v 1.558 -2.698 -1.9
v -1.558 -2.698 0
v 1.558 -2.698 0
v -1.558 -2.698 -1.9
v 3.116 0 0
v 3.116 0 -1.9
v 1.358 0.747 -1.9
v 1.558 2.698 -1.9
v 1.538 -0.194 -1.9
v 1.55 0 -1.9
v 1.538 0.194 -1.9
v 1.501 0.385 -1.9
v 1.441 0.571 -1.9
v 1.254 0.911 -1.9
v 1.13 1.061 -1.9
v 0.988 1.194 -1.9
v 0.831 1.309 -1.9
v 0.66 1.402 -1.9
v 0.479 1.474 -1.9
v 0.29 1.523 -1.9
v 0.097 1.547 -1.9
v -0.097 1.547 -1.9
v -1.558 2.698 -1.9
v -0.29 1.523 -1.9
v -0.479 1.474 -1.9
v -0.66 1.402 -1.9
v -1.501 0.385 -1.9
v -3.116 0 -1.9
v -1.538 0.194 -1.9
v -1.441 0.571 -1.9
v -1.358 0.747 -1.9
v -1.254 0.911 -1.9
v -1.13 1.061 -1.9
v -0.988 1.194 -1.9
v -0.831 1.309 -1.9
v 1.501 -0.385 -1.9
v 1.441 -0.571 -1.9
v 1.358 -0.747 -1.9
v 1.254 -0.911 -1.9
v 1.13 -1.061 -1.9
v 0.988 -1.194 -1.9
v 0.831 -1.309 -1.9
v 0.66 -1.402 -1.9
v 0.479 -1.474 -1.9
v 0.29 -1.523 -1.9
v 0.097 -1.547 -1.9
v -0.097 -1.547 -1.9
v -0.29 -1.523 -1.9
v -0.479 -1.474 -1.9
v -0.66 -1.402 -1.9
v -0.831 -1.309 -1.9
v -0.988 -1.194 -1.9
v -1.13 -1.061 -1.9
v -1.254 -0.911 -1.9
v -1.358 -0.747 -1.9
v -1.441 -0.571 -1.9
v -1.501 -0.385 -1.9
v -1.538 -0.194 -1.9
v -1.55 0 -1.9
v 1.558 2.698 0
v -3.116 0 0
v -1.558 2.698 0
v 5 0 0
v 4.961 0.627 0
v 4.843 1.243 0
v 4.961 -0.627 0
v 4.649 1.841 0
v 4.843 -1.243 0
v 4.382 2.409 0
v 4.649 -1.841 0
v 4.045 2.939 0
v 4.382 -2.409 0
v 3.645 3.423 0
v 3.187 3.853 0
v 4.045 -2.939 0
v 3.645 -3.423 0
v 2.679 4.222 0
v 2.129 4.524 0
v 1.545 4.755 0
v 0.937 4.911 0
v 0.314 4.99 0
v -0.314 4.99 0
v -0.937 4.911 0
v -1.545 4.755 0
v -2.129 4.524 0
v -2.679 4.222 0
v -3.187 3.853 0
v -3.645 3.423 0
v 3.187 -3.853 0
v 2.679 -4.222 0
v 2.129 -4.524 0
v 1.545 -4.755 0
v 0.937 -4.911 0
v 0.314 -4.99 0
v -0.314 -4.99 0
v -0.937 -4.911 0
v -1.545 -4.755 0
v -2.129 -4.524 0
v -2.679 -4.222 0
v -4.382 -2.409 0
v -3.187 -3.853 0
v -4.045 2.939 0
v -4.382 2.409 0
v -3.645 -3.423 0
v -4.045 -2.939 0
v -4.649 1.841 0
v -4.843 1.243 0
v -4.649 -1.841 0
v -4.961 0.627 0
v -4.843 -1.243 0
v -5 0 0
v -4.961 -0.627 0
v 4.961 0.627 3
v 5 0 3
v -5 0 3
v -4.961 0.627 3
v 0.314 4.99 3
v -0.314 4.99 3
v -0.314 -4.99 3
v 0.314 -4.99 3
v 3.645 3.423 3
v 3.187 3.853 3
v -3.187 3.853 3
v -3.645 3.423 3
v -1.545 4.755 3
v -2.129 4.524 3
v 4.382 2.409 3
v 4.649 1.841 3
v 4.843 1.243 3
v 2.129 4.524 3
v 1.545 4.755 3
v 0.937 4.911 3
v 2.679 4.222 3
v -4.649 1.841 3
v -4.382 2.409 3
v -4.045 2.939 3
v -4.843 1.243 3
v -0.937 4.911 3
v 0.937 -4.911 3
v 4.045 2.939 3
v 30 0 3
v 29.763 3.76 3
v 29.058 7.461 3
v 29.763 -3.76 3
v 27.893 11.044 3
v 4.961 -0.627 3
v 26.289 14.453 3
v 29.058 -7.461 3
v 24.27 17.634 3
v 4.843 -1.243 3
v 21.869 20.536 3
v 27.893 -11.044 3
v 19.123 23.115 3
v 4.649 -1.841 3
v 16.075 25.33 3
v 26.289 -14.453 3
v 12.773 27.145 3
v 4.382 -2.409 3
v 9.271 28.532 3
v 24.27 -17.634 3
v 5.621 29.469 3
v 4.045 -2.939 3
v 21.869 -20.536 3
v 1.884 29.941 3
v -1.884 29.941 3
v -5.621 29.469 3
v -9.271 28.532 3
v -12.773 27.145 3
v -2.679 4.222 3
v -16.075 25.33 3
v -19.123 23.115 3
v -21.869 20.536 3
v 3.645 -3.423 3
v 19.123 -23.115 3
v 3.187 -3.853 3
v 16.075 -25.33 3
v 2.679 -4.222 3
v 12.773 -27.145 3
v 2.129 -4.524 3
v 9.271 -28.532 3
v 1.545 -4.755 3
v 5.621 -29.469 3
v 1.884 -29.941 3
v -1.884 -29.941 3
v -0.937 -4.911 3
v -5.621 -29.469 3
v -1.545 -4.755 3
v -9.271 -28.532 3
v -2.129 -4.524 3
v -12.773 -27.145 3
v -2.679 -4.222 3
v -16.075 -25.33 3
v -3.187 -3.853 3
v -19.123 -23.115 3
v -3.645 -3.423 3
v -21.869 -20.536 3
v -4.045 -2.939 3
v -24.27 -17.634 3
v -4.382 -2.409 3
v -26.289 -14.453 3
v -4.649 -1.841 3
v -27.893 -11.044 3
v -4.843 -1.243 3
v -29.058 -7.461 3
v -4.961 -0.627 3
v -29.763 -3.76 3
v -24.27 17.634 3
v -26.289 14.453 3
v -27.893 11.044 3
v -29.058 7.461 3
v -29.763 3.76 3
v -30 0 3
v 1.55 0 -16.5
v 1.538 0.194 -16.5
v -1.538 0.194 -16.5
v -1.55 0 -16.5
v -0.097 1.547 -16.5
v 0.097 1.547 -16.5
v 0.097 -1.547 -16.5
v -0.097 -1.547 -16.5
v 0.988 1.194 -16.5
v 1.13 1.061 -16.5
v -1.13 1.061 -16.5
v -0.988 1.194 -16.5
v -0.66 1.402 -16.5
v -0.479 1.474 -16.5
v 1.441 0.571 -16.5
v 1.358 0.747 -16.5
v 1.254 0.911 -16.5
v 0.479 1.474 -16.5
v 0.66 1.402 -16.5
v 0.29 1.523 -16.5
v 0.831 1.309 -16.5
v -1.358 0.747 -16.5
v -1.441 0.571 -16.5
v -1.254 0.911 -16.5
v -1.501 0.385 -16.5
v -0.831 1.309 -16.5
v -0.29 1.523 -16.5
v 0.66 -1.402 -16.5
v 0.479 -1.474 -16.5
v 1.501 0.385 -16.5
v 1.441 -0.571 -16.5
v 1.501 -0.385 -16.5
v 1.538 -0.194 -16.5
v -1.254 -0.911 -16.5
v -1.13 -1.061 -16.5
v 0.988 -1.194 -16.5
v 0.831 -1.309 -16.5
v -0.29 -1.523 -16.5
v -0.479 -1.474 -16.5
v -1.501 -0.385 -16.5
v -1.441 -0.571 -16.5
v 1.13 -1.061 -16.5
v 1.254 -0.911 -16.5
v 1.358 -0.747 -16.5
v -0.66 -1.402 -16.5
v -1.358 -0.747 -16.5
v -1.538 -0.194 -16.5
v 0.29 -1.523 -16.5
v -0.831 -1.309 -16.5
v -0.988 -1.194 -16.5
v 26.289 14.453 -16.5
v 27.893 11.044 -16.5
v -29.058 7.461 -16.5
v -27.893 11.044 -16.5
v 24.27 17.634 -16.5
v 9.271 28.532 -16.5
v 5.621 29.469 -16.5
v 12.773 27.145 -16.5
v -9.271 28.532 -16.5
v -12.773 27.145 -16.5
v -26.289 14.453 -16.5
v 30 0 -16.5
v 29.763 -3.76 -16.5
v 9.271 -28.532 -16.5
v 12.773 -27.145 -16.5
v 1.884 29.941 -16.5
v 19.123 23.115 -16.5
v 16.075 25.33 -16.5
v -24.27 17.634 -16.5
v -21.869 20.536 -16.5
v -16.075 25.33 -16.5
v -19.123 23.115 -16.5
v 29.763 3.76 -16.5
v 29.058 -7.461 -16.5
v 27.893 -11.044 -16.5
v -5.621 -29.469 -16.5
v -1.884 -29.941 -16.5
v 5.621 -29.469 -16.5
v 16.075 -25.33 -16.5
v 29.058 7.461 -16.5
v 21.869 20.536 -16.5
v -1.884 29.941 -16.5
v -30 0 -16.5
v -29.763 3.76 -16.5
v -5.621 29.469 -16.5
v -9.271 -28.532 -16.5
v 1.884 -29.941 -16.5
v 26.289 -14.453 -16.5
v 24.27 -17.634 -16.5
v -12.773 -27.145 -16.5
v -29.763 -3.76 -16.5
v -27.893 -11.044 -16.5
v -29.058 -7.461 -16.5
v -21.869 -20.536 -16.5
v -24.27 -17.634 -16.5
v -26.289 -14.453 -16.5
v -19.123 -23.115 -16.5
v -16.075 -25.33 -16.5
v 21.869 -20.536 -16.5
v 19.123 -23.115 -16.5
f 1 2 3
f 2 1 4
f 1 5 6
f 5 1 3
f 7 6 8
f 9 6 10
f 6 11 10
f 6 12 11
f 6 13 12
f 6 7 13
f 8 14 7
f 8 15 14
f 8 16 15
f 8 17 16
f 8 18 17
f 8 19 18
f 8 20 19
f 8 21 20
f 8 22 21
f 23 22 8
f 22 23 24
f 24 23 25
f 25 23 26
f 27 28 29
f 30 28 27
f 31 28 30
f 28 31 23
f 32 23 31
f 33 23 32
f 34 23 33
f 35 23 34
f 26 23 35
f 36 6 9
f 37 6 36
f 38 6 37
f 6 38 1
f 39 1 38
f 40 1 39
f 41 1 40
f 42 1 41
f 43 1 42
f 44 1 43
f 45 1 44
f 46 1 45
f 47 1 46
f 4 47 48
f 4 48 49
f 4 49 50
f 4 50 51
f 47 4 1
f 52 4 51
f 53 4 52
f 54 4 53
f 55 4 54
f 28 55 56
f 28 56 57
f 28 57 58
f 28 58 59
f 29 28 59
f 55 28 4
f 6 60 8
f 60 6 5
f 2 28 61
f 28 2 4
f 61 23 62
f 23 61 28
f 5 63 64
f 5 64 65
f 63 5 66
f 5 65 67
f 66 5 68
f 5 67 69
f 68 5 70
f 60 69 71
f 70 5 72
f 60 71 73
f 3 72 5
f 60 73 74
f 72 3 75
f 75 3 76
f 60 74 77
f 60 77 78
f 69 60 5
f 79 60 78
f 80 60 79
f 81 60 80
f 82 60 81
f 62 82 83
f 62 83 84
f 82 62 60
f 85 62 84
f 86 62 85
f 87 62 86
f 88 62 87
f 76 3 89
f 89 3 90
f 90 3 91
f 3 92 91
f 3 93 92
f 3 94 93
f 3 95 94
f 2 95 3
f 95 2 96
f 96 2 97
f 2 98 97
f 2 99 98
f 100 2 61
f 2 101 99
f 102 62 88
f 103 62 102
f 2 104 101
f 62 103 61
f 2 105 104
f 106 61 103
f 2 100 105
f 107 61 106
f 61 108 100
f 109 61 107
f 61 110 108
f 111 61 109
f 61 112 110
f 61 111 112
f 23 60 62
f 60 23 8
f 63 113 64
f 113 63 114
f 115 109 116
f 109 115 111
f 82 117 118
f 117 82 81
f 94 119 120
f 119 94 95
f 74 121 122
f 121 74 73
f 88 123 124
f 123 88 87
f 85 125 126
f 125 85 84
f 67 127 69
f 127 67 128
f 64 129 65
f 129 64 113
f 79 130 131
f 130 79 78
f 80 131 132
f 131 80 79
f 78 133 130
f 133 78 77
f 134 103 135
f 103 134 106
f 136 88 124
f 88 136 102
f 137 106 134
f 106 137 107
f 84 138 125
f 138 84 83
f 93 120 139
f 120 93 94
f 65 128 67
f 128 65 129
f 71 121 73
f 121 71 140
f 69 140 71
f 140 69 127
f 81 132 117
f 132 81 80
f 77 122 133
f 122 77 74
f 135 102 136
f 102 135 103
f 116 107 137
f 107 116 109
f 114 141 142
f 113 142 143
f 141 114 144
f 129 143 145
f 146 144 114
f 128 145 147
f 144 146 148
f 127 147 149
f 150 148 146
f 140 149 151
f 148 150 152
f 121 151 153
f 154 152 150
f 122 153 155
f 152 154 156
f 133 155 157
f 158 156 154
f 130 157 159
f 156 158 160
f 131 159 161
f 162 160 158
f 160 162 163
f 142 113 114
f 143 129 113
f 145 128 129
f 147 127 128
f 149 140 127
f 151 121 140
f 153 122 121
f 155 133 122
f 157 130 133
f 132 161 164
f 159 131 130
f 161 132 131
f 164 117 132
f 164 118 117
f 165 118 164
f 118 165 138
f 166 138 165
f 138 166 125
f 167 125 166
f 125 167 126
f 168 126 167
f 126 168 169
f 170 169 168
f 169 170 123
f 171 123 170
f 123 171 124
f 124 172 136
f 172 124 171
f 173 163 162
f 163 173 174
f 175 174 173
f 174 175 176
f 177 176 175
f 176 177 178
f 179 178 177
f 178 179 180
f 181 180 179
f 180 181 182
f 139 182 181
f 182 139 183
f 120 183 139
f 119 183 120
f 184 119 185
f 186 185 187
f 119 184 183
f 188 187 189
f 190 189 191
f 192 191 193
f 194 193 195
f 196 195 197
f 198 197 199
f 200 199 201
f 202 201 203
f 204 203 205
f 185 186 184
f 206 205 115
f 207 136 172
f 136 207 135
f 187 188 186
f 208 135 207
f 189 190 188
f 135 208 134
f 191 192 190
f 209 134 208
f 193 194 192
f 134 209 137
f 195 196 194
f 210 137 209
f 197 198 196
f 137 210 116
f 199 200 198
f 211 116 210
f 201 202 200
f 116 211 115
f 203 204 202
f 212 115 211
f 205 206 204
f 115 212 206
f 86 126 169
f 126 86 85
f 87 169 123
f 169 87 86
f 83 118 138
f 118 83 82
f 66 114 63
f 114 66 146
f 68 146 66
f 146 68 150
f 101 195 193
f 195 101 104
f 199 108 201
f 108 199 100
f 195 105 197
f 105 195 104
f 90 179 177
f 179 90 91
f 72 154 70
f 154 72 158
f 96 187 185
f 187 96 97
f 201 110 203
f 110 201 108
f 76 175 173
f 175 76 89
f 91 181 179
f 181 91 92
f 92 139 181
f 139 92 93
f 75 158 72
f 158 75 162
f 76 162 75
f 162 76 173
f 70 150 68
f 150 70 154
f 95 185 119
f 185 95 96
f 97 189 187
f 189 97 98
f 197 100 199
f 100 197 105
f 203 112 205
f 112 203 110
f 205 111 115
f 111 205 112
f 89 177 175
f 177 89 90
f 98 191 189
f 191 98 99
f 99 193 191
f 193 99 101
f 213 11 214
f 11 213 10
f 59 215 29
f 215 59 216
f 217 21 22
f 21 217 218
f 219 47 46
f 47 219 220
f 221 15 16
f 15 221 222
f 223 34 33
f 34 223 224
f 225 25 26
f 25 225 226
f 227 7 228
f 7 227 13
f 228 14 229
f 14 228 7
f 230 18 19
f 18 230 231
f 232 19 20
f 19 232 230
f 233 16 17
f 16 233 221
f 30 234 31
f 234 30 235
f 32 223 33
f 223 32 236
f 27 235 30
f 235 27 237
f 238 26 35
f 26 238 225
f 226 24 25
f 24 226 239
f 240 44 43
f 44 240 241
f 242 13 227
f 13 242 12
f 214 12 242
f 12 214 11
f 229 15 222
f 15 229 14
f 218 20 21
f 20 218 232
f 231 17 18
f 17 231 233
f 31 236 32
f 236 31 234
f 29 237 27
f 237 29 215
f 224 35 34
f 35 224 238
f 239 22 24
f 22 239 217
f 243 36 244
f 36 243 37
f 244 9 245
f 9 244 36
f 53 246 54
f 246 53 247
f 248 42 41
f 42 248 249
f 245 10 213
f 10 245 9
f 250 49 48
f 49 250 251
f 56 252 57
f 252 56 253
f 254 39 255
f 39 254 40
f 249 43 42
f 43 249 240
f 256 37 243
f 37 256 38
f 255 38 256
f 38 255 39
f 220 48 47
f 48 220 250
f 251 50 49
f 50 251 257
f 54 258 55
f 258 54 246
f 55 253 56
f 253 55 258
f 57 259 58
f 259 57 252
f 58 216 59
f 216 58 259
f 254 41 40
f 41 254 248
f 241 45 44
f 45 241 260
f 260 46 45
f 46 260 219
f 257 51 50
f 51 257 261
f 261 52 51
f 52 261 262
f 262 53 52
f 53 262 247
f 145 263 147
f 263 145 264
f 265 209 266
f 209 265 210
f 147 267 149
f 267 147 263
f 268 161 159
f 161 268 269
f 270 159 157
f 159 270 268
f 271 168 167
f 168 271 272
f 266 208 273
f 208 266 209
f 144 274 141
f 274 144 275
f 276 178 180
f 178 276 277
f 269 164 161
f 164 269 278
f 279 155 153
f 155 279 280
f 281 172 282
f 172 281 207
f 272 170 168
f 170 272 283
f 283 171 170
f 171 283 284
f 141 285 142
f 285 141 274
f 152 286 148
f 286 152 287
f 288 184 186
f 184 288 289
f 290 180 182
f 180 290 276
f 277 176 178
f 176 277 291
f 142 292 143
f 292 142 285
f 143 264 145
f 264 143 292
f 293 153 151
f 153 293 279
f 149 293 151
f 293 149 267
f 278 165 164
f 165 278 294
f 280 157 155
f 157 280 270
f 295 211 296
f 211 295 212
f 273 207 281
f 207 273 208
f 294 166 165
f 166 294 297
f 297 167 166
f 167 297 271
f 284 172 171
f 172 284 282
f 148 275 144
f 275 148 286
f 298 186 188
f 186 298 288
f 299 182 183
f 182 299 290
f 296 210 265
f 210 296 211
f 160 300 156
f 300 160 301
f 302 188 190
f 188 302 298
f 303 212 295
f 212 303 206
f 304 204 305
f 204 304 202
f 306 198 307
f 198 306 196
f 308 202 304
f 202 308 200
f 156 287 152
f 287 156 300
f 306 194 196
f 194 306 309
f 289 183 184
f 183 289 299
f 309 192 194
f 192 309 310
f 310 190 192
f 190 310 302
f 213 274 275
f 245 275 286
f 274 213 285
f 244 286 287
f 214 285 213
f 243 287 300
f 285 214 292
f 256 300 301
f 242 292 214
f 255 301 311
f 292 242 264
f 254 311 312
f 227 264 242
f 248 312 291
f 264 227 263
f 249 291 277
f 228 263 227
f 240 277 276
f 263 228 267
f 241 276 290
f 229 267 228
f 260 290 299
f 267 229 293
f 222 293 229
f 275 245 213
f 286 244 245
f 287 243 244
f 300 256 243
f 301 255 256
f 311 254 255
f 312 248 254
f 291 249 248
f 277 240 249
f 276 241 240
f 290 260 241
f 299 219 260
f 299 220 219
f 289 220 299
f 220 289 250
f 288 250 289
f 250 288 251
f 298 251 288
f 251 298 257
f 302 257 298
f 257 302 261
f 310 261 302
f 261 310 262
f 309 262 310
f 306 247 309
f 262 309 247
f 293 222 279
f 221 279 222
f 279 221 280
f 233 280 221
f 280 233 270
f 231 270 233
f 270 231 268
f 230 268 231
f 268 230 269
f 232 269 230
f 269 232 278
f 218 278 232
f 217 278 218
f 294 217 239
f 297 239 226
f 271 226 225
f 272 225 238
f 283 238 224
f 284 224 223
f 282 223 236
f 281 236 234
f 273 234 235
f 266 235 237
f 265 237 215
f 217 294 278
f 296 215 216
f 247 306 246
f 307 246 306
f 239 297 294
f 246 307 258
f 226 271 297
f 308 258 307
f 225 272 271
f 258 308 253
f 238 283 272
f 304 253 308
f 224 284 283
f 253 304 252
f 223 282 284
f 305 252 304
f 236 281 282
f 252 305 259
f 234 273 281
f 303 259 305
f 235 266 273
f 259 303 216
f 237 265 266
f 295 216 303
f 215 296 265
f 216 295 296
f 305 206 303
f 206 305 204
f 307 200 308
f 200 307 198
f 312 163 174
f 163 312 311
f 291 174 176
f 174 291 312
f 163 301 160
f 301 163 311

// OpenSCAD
$fn = 50;


difference() {
	union() {
		translate(v = [0, 0, -16.5000000000]) {
			cylinder(h = 19.5000000000, r = 30.0000000000);
		}
	}
	union() {
		translate(v = [0, 0, 0]) {
			rotate(a = [0, 0, 0]) {
				difference() {
					union() {
						translate(v = [0, 0, -1.9000000000]) {
							linear_extrude(height = 1.9000000000) {
								polygon(points = [[3.1158000000, 0.0000000000], [1.5579000000, 2.6983619531], [-1.5579000000, 2.6983619531], [-3.1158000000, 0.0000000000], [-1.5579000000, -2.6983619531], [1.5579000000, -2.6983619531]]);
							}
						}
					}
					union();
				}
			}
		}
		#cylinder(h = 3, r = 5.0000000000);
		#translate(v = [0, 0, -100.0000000000]) {
			cylinder(h = 200, r = 1.5500000000);
		}
	}
}
